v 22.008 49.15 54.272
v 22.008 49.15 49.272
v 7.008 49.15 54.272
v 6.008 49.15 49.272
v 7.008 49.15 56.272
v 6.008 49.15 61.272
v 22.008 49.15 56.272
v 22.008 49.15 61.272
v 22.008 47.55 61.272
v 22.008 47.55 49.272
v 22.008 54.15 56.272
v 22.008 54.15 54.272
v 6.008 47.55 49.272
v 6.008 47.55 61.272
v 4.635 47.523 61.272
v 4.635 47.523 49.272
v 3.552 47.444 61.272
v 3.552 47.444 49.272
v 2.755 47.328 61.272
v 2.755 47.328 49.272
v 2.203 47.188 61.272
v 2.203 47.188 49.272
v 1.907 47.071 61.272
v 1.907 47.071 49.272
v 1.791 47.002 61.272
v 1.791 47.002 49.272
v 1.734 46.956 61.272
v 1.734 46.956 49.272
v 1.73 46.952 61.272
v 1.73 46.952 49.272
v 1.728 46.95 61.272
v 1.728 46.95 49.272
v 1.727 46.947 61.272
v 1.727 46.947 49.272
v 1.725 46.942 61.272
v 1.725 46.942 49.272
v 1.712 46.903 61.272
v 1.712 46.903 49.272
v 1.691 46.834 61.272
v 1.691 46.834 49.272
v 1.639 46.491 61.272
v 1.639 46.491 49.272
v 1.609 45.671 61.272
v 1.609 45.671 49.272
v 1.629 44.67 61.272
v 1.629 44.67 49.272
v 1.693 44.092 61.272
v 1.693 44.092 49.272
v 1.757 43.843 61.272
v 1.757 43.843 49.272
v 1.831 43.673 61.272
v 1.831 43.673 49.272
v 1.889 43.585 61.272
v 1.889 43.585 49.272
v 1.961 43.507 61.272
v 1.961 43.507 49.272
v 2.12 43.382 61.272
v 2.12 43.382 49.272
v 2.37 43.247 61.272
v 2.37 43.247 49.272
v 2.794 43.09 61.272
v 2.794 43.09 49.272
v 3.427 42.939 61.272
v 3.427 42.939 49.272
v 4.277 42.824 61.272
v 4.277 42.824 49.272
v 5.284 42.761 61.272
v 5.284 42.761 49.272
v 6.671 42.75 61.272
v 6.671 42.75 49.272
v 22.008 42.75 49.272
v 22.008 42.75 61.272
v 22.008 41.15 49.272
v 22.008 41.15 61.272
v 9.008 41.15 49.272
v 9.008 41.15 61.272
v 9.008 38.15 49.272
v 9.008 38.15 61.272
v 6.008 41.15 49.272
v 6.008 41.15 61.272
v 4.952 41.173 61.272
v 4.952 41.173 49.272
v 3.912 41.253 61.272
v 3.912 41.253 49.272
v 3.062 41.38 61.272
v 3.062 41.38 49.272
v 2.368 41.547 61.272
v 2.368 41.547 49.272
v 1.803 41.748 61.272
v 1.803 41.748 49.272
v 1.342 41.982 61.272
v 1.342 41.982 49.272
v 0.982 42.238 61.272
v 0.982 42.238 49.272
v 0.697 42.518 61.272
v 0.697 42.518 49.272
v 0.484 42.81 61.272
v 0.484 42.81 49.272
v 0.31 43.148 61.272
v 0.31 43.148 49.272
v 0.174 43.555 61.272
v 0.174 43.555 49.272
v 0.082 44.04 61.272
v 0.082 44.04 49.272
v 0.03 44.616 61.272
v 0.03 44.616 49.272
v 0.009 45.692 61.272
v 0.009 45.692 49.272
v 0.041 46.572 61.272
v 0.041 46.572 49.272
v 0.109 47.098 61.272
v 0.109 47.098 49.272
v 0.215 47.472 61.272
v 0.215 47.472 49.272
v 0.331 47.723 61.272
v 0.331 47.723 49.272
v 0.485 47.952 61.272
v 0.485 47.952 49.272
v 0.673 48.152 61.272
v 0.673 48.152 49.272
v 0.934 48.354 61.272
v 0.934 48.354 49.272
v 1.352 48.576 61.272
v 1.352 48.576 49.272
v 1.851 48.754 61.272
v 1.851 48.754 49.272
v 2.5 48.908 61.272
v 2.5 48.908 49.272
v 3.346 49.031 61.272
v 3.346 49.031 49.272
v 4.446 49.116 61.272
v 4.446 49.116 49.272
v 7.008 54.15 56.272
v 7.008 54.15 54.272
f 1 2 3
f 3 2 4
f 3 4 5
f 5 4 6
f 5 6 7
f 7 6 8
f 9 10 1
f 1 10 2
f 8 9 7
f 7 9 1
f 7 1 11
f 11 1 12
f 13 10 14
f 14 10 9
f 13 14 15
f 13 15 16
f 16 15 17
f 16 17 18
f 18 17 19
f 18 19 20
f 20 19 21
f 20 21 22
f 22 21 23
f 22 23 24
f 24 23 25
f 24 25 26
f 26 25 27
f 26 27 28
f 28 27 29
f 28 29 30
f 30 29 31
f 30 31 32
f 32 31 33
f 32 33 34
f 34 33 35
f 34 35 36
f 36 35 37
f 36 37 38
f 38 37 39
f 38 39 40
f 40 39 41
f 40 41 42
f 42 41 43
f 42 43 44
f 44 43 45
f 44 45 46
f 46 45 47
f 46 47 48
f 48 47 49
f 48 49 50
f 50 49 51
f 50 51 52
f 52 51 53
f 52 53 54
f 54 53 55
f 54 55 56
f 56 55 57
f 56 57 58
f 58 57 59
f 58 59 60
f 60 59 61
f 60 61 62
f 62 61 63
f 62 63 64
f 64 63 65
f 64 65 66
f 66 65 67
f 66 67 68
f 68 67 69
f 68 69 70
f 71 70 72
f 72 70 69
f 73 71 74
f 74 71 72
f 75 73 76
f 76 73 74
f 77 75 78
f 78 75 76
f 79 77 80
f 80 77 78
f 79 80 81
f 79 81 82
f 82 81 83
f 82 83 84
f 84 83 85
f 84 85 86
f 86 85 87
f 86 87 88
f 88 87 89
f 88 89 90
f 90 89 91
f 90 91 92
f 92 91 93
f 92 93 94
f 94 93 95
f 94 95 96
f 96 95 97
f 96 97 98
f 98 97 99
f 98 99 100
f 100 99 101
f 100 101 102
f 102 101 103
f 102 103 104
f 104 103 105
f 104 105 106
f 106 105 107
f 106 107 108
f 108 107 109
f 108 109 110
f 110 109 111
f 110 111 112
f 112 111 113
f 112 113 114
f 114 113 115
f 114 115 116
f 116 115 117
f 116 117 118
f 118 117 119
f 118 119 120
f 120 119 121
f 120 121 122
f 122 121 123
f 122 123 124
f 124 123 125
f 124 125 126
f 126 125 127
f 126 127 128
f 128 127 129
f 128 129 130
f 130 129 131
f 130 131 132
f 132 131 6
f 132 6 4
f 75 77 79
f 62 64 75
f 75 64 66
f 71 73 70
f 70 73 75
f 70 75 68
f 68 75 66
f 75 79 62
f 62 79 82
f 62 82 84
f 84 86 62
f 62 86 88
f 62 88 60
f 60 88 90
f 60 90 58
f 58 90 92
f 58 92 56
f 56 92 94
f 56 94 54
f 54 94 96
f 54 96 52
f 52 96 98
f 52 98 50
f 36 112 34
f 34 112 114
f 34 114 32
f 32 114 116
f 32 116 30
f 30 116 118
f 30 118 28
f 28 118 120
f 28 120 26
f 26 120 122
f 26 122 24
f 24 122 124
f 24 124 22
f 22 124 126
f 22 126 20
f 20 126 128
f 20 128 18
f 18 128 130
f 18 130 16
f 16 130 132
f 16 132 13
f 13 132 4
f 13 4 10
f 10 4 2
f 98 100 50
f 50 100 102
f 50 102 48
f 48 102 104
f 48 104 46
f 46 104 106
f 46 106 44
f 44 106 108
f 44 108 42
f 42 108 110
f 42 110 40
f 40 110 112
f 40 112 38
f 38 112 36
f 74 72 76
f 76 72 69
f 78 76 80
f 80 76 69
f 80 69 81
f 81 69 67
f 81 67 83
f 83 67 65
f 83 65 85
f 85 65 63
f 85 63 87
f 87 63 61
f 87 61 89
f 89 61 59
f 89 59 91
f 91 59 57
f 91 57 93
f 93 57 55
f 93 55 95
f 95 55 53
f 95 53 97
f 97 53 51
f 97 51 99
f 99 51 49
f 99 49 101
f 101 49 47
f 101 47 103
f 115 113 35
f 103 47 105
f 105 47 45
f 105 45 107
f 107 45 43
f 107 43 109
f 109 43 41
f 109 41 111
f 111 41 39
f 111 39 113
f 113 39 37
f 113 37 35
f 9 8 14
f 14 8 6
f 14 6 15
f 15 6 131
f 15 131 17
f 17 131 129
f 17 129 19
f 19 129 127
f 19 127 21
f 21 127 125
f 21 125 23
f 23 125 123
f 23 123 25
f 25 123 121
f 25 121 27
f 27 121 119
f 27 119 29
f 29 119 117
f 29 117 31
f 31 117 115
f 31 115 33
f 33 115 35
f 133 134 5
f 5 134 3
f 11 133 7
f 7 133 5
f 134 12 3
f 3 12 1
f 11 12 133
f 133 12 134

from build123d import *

# Parameters (mm, degrees)
BOSS_EXTRUDE1_DEPTH = 12
SKETCH4_W           = 15
SKETCH4_H           = 2
BOSS_EXTRUDE2_DEPTH = 5


with BuildPart() as part:
    # Sketch3 → Boss-Extrude1 (new body)
    with BuildSketch(Plane.XY.offset(61.271539715)):
        with BuildLine():
            Line((22, 49.150430771), (6, 49.150430771))
            add(Edge.make_bspline(
                [(6, 49.150430771), (0.397936137, 49.150430771), (0.000649692, 47.779287293), (-0.008454, 43.166439227), (0.529679054, 41.150430771), (6, 41.150430771)],
                knots=[0, 0, 0, 0, 0.444599043, 0.544599043, 1, 1, 1, 1], degree=3))
            Line((6, 41.150430771), (9, 38.150430771))
            Line((9, 38.150430771), (9, 41.150430771))
            Line((9, 41.150430771), (22, 41.150430771))
            Line((22, 41.150430771), (22, 42.750430771))
            Line((22, 42.750430771), (7.4, 42.750430771))
            Line((7.4, 42.750430771), (6.6627417, 42.750430771))
            add(Edge.make_bspline(
                [(6, 47.550430771), (5.814300885, 47.550430771), (5.432601297, 47.547671152), (4.751733662, 47.531432192), (3.995606566, 47.491771372), (3.252179793, 47.416153303), (2.467185464, 47.286178925), (1.86636449, 47.08344062), (1.710373783, 46.938448113), (1.726658165, 46.965738219), (1.616713293, 46.665186808), (1.588317561, 45.573387193), (1.619239413, 44.52789914), (1.694287589, 43.966857293), (1.813269122, 43.66756524), (1.934018721, 43.504771298), (2.279167095, 43.252557491), (2.976537313, 43.013614634), (3.819693321, 42.866898514), (4.599880812, 42.788084551), (5.376142657, 42.753233409), (6.079041938, 42.749870243), (6.471600888, 42.750430771), (6.6627417, 42.750430771)],
                knots=[0, 0, 0, 0, 0.015912359, 0.031824717, 0.063649434, 0.095474152, 0.127298869, 0.190948303, 0.254597738, 0.318247172, 0.381896606, 0.509195475, 0.57284491, 0.636494344, 0.700143778, 0.763793213, 0.827442647, 0.891092082, 0.922916799, 0.954741516, 0.986566233, 1.002478592, 1.01839095, 1.01839095, 1.01839095, 1.01839095], degree=3))
            Line((6, 47.550430771), (22, 47.550430771))
            Line((22, 47.550430771), (22, 49.150430771))
        make_face()
    extrude(amount=-BOSS_EXTRUDE1_DEPTH)

    # Sketch4 → Boss-Extrude2 (add)
    with BuildSketch(Plane(origin=(0, 49.150430771, 0), x_dir=(1, 0, 0), z_dir=(0, 1, 0))):
        with Locations((14.5, -55.271539715)):
            Rectangle(SKETCH4_W, SKETCH4_H)
    extrude(amount=BOSS_EXTRUDE2_DEPTH)


solid = part.part
